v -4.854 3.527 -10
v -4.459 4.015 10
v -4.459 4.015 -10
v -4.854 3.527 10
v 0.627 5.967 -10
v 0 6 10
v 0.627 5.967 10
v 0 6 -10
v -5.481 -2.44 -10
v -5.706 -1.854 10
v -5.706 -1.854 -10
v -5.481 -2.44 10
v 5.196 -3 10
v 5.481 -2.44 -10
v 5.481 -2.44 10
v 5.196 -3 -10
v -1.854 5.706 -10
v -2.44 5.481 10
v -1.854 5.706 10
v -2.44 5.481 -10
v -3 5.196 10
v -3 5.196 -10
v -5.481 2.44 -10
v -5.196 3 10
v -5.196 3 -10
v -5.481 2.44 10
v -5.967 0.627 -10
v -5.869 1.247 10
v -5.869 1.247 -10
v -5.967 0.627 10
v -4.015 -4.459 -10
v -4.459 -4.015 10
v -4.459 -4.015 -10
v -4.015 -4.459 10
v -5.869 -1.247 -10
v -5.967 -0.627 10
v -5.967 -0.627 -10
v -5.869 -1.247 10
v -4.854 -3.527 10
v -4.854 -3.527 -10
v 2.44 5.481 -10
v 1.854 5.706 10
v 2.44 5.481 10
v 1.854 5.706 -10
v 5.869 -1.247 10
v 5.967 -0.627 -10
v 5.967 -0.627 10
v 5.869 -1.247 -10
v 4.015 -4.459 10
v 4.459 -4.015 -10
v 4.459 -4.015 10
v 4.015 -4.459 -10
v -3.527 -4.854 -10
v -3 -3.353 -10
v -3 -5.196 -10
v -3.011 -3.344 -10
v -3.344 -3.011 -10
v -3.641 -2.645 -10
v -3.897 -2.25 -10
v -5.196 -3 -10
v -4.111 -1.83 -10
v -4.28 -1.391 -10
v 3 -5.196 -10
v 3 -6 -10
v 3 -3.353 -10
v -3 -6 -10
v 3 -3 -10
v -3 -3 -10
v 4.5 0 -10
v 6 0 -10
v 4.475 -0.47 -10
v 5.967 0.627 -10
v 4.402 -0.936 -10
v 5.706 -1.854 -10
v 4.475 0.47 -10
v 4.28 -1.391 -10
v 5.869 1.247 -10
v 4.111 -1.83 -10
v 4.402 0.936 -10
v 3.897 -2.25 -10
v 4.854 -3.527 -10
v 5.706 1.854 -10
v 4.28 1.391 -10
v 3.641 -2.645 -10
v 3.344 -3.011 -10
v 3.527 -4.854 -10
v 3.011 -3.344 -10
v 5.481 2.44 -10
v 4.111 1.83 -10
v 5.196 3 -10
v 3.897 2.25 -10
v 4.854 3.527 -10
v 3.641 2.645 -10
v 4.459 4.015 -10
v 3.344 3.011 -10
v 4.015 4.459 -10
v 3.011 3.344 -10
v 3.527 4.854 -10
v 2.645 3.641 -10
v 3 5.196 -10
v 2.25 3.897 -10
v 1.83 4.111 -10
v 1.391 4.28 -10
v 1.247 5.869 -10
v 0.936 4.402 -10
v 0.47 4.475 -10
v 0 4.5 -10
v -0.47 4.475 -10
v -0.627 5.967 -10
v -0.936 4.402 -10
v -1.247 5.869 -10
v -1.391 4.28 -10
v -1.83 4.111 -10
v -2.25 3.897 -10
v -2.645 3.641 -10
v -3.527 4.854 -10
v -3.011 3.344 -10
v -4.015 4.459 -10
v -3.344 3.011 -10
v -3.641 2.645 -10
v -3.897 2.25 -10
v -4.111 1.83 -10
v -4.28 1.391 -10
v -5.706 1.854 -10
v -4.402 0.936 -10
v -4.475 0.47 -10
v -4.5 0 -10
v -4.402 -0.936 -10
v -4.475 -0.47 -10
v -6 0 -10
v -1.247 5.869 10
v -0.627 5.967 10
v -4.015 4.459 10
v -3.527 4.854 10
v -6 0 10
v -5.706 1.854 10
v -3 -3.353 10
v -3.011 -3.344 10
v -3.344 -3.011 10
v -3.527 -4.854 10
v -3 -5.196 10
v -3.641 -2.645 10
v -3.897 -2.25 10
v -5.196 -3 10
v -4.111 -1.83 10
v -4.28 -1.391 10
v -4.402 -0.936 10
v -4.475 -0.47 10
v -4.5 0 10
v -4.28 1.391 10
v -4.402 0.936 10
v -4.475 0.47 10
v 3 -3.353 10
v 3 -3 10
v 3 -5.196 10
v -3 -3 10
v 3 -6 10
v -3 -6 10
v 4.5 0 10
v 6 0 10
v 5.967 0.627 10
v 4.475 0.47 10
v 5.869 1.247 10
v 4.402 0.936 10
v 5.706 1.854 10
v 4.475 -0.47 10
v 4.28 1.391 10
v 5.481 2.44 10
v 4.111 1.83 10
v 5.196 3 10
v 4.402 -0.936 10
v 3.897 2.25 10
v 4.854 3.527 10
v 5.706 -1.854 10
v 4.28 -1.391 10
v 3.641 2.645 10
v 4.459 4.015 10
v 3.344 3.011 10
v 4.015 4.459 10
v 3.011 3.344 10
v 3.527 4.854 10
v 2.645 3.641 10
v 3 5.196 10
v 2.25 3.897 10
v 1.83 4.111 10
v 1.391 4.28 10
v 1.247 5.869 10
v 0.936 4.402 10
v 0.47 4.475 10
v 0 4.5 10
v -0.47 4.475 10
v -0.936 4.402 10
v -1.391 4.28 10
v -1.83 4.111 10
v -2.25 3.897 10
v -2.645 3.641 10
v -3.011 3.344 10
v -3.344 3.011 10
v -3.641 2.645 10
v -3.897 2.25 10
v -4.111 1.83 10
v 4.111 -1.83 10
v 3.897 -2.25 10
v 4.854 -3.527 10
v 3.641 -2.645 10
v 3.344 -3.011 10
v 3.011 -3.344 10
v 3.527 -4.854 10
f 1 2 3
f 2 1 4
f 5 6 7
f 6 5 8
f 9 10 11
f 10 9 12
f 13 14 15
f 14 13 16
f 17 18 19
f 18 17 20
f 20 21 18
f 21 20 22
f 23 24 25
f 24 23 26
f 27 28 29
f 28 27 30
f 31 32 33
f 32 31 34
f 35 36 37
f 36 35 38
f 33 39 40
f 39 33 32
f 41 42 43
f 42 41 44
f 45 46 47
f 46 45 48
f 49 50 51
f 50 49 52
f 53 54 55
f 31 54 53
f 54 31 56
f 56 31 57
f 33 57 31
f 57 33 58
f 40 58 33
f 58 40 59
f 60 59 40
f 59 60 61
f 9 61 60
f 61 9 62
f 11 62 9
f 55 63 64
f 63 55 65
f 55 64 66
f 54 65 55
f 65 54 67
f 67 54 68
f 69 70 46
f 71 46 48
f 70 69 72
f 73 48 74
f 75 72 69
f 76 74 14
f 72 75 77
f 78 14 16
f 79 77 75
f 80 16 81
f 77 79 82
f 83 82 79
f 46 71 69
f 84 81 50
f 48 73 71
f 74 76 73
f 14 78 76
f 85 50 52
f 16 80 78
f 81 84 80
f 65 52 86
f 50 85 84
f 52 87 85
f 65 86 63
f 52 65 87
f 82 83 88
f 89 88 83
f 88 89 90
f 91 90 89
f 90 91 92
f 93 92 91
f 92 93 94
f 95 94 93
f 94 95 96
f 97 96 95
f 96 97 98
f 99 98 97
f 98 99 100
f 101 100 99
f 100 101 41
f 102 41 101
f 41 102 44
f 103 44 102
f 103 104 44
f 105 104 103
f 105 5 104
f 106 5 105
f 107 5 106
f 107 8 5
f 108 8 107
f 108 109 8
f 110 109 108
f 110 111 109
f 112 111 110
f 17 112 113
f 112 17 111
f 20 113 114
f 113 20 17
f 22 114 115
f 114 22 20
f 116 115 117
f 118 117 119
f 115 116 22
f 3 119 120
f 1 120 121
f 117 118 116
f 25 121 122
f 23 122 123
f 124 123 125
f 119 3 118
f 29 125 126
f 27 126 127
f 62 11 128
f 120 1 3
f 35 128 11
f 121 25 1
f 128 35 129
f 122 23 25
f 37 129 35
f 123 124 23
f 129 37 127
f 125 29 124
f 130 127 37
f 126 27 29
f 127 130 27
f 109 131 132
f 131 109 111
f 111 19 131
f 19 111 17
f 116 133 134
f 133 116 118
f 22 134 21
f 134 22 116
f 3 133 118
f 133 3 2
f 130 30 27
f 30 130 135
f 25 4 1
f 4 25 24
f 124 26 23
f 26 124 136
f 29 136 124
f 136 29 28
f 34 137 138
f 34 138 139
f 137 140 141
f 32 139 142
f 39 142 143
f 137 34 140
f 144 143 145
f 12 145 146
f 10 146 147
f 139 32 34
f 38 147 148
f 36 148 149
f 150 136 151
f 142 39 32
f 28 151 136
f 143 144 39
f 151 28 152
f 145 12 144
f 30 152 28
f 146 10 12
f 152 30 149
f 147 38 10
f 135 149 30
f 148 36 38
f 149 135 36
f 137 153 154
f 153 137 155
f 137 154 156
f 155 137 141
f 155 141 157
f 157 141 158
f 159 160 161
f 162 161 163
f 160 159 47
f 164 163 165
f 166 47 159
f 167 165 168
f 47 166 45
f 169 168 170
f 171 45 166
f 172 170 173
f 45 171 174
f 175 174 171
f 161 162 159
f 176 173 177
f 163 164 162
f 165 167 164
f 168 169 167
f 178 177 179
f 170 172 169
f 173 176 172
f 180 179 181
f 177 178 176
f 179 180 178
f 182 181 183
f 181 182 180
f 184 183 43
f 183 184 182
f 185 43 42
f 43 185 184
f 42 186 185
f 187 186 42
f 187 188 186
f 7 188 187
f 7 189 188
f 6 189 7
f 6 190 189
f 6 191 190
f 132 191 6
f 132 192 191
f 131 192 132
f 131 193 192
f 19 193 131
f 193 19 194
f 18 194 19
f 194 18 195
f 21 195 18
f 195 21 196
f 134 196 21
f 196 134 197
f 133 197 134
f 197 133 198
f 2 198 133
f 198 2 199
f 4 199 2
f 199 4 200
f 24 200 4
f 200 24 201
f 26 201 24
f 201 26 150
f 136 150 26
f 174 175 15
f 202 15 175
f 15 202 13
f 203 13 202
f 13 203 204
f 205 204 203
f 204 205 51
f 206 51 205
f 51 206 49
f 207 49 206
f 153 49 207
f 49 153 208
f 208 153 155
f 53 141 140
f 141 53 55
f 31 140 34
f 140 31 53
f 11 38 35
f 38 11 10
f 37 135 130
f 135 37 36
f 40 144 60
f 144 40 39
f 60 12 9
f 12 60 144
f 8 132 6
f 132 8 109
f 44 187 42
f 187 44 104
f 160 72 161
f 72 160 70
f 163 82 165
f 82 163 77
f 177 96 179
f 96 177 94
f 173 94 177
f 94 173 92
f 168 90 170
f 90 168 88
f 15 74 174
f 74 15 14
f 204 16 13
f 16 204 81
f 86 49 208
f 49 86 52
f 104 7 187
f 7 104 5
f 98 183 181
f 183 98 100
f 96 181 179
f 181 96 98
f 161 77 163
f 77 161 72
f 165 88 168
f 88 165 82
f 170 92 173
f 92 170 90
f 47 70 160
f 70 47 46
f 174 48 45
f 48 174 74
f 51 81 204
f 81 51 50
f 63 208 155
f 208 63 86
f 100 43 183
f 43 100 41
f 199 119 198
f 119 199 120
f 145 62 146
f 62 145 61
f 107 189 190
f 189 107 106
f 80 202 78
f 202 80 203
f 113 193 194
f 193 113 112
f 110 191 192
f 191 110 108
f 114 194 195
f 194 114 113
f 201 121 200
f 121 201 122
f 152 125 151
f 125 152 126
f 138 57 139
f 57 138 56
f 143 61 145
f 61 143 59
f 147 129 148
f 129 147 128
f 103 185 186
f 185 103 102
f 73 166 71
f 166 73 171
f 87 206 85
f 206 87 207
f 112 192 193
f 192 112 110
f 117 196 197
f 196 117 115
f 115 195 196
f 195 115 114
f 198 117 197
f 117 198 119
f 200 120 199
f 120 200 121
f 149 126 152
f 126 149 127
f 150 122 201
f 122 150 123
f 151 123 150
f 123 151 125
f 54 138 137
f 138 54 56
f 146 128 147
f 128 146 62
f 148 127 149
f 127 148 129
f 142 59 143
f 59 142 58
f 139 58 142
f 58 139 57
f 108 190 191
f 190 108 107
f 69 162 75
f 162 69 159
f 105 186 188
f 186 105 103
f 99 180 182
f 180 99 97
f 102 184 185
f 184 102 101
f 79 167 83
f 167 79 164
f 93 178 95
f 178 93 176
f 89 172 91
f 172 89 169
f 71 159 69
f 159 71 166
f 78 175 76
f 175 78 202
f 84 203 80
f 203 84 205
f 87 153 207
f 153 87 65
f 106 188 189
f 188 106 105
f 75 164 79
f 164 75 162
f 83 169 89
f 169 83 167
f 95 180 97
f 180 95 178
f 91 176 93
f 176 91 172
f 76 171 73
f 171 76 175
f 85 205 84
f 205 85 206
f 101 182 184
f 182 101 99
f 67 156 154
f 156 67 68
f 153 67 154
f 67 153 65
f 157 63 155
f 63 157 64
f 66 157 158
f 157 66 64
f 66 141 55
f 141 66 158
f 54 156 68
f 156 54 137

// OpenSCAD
cyl_d = 12;
cyl_h = 20;
cyl_w = 1.5;


cube_w = cyl_w*2.0;

rotate([0,0,90]) lights_tube();

module lights_tube() {
    difference() {
        cylinder(d=cyl_d,h=cyl_h,center=true,$fn=60);
        cylinder(d=cyl_d-2*cyl_w,h=cyl_h+1,center=true,$fn=60);
    }// of difference;
    translate([-cyl_d/2+cyl_w*1,0,0]) rotate([0,90,0])
        cube([cyl_h,cyl_d/2,cube_w],center=true);
} // of lights_tube()
